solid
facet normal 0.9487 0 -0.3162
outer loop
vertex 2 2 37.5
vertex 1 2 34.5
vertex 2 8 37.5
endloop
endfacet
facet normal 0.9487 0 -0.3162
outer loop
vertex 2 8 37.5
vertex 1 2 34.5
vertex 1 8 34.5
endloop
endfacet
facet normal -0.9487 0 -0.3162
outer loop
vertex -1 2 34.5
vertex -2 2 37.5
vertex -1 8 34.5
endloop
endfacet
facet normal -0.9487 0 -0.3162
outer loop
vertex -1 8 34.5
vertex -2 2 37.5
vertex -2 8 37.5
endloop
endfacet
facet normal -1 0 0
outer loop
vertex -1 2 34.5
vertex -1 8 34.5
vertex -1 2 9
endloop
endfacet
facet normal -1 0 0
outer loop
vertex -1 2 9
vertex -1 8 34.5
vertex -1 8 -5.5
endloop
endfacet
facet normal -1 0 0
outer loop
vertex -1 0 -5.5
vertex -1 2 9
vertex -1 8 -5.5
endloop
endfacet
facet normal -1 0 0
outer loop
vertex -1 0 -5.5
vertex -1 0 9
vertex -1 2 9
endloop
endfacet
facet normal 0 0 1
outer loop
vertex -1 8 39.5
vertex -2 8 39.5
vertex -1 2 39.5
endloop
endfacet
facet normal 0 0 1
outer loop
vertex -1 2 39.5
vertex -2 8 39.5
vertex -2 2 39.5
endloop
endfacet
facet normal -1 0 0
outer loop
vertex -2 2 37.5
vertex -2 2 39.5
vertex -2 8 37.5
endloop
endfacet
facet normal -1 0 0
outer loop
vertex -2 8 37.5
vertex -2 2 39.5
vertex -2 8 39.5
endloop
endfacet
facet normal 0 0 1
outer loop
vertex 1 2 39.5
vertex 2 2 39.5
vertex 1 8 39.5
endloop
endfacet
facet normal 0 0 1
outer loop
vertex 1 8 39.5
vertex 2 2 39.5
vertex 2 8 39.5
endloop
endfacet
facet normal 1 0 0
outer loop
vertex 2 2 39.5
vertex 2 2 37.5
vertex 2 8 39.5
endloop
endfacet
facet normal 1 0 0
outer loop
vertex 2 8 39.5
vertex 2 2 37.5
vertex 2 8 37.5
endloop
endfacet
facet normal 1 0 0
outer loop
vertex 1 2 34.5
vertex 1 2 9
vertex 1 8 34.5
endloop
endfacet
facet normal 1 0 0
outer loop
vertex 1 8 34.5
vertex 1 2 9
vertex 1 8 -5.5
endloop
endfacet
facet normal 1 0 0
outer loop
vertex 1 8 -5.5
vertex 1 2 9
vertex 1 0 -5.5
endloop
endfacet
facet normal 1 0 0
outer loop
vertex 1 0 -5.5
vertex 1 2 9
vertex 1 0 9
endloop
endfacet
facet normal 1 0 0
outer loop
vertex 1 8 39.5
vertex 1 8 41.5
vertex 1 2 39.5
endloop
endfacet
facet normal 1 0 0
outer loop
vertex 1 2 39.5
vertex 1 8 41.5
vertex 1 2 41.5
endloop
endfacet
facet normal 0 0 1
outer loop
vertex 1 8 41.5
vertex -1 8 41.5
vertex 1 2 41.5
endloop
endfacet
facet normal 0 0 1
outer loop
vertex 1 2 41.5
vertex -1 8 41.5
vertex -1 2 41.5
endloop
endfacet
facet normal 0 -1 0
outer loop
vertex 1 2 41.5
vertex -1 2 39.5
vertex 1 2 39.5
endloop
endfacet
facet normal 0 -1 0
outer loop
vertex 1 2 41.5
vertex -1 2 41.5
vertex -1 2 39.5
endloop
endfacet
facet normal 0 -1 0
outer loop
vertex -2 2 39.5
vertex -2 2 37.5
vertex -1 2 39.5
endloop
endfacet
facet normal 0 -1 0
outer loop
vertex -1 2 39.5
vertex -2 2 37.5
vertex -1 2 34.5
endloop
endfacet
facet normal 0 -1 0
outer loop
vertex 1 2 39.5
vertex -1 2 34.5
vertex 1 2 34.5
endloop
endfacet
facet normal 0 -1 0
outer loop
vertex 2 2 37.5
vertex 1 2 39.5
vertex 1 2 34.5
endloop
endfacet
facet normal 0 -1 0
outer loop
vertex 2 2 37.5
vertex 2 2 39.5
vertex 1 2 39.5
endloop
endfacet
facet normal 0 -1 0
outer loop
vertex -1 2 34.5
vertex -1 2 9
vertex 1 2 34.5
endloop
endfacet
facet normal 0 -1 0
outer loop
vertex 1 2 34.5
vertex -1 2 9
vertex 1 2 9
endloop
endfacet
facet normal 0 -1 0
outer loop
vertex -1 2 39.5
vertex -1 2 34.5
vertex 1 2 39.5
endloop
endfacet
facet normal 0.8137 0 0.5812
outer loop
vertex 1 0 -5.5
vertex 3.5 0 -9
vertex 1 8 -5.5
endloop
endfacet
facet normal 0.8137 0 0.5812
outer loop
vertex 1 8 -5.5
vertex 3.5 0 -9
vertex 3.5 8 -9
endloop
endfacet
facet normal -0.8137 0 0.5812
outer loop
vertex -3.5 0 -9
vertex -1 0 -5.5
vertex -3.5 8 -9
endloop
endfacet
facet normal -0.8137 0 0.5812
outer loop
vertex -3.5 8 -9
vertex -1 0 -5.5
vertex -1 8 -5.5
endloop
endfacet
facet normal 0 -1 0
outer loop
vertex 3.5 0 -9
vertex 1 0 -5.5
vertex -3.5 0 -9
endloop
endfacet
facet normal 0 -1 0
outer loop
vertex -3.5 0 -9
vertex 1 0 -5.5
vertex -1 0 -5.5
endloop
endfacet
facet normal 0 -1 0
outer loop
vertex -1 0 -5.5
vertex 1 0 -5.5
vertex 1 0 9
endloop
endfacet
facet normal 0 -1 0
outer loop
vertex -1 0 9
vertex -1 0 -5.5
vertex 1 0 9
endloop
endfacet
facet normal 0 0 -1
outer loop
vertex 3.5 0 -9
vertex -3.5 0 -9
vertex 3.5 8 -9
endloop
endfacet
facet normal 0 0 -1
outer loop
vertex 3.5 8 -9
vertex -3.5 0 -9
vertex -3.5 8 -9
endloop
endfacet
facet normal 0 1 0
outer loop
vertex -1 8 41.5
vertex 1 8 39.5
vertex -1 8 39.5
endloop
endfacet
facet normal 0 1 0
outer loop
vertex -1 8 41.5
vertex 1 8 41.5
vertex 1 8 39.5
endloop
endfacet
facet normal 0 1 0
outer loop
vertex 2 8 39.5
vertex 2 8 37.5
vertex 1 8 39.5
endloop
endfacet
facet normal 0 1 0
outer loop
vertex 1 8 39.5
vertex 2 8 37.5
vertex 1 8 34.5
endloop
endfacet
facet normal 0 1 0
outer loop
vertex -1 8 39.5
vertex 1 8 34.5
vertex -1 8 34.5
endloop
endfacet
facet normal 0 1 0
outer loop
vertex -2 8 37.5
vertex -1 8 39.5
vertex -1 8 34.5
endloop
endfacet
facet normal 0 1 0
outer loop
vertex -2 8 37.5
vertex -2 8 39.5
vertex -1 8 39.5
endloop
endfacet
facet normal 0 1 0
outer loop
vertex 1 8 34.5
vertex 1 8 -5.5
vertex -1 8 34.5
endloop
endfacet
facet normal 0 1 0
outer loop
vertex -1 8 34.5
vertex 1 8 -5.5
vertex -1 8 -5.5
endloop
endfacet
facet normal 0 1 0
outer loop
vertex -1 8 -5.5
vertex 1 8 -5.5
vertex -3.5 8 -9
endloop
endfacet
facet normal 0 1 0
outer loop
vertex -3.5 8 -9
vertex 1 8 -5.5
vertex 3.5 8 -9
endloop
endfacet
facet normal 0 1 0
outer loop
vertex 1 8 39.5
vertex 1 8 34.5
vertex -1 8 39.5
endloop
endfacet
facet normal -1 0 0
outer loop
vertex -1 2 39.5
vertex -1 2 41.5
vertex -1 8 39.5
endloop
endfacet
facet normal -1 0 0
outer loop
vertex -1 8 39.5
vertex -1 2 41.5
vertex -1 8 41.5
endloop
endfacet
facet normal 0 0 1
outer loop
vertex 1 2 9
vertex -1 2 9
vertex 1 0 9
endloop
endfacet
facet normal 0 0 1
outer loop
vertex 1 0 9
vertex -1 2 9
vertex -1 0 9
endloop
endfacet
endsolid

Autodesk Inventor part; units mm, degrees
ref_plane "YZ Plane" through (0, 0, 0) normal (1, 0, 0) x (0, 1, 0)
ref_plane "XZ Plane" through (0, 0, 0) normal (0, 1, 0) x (-1, 0, 0)
ref_plane "XY Plane" through (0, 0, 0) normal (0, 0, 1) x (1, 0, 0)
sketch "Sketch1" plane through (0, 0, 0) normal (0, 1, 0) x (-1, 0, 0)
  line L0 (1, 9) -> (-1, 9)
  line L1 (-1, 9) -> (-1, -9)
  line L2 (-1, -9) -> (1, -9)
  line L3 (1, -9) -> (1, 9)
  line L4 (1, 9) -> (-1, -9) construction
  line L5 (-1, 9) -> (1, -9) construction
  line L6 (3.5, -5.5) -> (-3.5, -5.5)
  line L7 (-3.5, -5.5) -> (-3.5, -9)
  line L8 (-3.5, -9) -> (3.5, -9)
  line L9 (3.5, -9) -> (3.5, -5.5)
  line L10 (0, 0) -> (0, -9)
  dimension "d0" = 2
  dimension "d2" = 18
  dimension "d3" = 7
  dimension "d4" = 3.5
extrude "Inserted Base" add sketch "Sketch1" along normal blind 8
sketch "Sketch2" plane through (0, 8, 0) normal (0, 1, 0) x (1, 0, 0)
  line L0 (3.5, 5.5) -> (3.5, 9) projected
  line L1 (1, 5.5) -> (3.5, 9)
  line L2 (1, 5.5) -> (3.5, 5.5) projected
  line L3 (3.5, 9) -> (3.5, 5.5)
  line L4 (3.5, 5.5) -> (1, 5.5)
  line L5 (-1, 5.5) -> (-3.5, 9)
  line L6 (-3.5, 9) -> (-3.5, 5.5) projected
  line L7 (-3.5, 9) -> (-3.5, 5.5)
  line L8 (-3.5, 5.5) -> (-1, 5.5) projected
  line L9 (-3.5, 5.5) -> (-1, 5.5)
  point P0 (0, 0)
extrude "Triangle Edges" cut sketch "Sketch2" against normal through all
sketch "Sketch3" plane through (0, 8, 0) normal (0, 1, 0) x (1, 0, 0)
  line L0 (-1, -9) -> (1, -9)
  line L1 (1, -9) -> (1, -41.5)
  line L2 (1, -41.5) -> (-1, -41.5)
  line L3 (-1, -41.5) -> (-1, -9)
  line L4 (1, -9) -> (1, 5.5) projected
  line L5 (-1, -39.5) -> (1, -39.5)
  line L6 (-1, 5.5) -> (-1, -9) projected
  line L7 (1, 5.5) -> (-1, 5.5)
  point P0 (0, 0)
  dimension "d9" = 2
  dimension "d14" = 45
extrude "Tab Extension" add sketch "Sketch3" against normal blind 6 contours L0 L1 L5 L3 | L5 L1 L2 L3
sketch "Sketch4" plane through (0, 8, 0) normal (0, 1, 0) x (1, 0, 0)
  line L0 (2, -39.5) -> (-2, -39.5)
  line L1 (-2, -39.5) -> (-2, -37.5)
  line L2 (-2, -37.5) -> (2, -37.5)
  line L3 (2, -37.5) -> (2, -39.5)
  line L4 (1, -9) -> (1, 5.5) projected
  line L5 (-1, 5.5) -> (-1, -9) projected
  line L6 (1, 5.5) -> (-1, 5.5)
  line L7 (0, 0) -> (0, 5.5)
  line L8 (-1, -41.5) -> (-1, -9) projected
  dimension "d13" = 45
  dimension "d15" = 2
  dimension "d16" = 1
extrude "Electrode rest" add sketch "Sketch4" against normal up to surface (6 mm away)
sketch "Sketch5" plane through (0, 8, 0) normal (0, 1, 0) x (1, 0, 0)
  line L0 (-1, -34.5) -> (1, -34.5)
  line L1 (1, -9) -> (1, -37.5) projected
  line L2 (-2, -37.5) -> (-1, -37.5) projected
  line L3 (-2, -37.5) -> (-1, -37.5)
  line L4 (-1, -34.5) -> (-2, -37.5)
  line L5 (2, -37.5) -> (1, -37.5) projected
  line L6 (1, -37.5) -> (2, -37.5)
  line L7 (2, -37.5) -> (1, -34.5)
  line L8 (-1, -37.5) -> (-1, -34.5)
  line L9 (-1, -37.5) -> (-1, -9) projected
  point P0 (0, 0)
  dimension "d19" = 3
extrude "Taper" add sketch "Sketch5" against normal up to surface (6 mm away)
properties part number "tabwtip_2mm_1128"
